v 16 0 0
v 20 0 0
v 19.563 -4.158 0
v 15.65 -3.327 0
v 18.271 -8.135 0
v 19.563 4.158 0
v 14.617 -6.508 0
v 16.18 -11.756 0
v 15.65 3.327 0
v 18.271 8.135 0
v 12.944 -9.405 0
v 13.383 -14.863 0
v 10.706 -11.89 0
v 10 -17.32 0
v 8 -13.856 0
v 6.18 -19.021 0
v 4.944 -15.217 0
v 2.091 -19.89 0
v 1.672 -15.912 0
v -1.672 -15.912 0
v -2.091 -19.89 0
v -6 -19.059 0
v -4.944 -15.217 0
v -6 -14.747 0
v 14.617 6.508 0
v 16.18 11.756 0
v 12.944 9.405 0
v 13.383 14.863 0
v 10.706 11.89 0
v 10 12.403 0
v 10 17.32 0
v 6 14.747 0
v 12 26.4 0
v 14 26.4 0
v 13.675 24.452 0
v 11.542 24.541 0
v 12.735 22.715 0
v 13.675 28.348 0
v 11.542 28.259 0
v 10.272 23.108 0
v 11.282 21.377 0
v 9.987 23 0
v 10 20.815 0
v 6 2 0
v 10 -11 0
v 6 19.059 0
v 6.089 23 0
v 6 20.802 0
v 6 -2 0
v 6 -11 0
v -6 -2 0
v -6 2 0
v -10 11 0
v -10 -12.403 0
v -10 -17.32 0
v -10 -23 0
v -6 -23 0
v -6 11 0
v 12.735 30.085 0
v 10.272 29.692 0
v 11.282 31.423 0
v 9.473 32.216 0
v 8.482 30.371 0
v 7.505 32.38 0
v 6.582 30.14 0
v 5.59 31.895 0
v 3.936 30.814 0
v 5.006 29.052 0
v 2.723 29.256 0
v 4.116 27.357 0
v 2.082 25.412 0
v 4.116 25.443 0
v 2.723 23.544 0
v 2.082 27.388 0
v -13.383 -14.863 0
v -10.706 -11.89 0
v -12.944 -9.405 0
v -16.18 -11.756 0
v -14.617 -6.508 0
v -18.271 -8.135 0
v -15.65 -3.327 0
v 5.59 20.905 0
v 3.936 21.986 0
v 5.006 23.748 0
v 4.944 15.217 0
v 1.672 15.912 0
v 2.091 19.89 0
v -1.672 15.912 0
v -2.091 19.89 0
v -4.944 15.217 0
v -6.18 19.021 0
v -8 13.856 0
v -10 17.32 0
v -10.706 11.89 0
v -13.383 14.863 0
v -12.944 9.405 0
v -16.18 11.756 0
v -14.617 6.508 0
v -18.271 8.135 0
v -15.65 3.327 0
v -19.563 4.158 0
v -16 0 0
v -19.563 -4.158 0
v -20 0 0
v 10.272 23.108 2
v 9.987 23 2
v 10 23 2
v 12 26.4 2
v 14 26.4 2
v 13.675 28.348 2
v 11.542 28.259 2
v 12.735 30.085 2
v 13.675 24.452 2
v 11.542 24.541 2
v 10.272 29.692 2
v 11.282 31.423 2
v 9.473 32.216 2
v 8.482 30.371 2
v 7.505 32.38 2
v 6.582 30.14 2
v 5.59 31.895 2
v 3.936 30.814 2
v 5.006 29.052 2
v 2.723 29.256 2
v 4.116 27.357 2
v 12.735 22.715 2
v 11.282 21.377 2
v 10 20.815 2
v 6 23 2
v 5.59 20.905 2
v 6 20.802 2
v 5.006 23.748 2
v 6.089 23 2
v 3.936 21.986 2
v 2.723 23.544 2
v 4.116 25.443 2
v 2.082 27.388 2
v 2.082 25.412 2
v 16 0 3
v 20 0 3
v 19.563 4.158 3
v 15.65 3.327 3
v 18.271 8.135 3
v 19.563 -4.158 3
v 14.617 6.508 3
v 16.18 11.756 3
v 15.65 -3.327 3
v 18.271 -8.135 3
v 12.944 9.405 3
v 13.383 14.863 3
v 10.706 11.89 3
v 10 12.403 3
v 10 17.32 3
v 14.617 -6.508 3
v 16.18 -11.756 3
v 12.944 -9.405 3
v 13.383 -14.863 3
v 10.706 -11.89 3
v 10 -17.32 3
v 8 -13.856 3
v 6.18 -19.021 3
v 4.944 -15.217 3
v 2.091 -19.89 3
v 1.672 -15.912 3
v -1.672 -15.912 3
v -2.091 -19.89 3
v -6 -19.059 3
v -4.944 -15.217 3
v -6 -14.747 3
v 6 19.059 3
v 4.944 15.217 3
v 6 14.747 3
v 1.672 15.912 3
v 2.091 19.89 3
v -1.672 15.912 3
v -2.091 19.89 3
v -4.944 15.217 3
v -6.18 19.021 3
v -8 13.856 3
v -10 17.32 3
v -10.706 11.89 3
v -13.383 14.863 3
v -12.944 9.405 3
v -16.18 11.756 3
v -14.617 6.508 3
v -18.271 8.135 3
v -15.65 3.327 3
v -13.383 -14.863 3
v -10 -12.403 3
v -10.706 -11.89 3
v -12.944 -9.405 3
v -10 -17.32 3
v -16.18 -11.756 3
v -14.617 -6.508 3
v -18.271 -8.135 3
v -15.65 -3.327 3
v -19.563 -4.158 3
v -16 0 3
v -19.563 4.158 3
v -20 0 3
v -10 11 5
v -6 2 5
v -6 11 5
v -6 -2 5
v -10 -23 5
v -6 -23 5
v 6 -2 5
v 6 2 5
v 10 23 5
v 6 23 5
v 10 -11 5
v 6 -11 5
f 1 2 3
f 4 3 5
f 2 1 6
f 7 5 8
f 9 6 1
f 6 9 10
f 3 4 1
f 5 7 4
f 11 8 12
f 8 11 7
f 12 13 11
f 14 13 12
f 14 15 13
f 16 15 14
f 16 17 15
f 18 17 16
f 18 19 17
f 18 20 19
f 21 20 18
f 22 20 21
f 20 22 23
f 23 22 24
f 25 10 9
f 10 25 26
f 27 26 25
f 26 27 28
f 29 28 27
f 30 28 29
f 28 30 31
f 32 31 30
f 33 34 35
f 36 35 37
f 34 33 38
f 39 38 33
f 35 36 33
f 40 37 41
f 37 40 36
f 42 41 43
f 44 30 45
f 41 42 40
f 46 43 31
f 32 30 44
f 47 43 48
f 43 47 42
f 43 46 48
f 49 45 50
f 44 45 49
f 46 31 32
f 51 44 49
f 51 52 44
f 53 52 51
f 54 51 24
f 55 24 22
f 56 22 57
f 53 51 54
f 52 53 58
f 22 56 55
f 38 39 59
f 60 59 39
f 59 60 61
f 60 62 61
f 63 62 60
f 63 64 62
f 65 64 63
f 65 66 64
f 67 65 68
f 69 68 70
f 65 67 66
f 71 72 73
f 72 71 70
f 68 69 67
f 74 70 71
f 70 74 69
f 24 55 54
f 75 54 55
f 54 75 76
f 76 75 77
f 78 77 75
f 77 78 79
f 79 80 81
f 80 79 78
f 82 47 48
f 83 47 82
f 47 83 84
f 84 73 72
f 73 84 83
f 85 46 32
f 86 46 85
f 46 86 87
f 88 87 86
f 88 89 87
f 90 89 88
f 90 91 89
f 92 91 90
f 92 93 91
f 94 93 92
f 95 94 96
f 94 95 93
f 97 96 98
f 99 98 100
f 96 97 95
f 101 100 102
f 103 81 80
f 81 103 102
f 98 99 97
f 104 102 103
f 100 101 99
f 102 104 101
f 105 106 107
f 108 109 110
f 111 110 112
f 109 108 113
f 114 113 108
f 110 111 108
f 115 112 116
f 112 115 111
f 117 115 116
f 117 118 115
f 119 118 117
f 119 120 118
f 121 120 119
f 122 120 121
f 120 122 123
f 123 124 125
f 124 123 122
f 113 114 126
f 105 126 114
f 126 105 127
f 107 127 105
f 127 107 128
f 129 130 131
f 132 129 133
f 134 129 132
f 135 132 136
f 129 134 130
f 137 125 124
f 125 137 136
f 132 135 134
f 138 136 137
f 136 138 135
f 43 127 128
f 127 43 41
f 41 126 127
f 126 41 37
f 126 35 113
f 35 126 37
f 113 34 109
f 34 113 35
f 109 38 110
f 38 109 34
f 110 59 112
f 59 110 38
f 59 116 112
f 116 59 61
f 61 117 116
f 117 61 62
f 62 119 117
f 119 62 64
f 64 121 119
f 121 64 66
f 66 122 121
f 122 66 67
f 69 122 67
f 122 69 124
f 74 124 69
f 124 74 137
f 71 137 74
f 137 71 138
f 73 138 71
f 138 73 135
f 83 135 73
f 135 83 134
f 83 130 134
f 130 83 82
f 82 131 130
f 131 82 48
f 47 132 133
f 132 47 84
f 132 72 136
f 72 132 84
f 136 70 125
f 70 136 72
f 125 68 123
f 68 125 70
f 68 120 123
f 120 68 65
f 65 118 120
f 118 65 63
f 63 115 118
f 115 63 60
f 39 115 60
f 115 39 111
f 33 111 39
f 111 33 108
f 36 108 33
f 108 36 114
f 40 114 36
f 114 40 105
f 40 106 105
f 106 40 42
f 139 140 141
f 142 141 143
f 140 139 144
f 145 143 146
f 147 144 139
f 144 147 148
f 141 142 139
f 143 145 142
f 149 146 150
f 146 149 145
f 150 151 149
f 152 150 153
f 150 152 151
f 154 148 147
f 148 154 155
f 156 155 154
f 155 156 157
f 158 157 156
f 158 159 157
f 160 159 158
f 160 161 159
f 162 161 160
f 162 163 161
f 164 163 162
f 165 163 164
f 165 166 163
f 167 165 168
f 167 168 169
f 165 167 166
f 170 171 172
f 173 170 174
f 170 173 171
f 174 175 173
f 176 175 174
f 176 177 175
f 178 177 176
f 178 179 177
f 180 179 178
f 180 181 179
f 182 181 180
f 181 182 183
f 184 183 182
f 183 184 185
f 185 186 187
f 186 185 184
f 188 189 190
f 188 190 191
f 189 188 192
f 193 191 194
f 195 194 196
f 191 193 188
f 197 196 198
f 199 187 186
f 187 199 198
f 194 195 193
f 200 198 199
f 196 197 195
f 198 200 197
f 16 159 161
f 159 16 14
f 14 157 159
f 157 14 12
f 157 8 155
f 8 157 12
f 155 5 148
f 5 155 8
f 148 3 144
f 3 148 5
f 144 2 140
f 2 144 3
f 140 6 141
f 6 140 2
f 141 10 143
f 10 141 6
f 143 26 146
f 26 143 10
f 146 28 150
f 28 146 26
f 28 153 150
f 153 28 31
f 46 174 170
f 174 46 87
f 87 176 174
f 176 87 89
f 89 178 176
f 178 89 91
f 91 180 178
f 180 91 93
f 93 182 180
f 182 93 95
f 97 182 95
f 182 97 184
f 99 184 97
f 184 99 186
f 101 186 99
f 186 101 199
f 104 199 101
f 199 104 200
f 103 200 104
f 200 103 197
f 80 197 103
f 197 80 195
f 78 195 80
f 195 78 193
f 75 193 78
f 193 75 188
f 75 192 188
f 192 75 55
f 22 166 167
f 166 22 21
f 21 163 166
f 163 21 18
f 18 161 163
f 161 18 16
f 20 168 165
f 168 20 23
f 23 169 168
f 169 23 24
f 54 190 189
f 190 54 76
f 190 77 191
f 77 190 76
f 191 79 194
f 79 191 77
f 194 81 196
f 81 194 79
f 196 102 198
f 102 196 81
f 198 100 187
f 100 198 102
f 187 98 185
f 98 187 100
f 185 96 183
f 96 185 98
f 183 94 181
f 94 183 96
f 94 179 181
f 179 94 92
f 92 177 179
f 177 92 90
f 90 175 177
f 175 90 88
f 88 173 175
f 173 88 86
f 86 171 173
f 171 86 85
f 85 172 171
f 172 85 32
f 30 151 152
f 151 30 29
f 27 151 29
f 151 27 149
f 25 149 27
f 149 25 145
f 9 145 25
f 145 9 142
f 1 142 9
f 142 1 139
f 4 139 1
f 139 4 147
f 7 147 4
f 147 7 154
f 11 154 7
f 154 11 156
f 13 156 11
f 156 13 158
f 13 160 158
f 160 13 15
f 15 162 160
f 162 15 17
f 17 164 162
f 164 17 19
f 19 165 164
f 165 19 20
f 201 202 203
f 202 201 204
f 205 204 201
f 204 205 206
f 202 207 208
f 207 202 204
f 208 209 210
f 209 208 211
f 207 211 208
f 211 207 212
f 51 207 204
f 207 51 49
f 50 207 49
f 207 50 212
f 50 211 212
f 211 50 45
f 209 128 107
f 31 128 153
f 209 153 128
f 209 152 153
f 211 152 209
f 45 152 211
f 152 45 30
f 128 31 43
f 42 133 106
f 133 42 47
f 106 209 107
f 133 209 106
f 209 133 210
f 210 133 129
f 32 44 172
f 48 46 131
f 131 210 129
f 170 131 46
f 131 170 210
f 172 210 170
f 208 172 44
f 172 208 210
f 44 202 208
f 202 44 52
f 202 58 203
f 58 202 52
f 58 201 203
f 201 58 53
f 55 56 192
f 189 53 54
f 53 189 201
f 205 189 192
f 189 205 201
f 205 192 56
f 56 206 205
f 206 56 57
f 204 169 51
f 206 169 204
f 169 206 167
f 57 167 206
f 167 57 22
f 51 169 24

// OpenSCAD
module aro(r, th) {
    difference(){
        circle(r);
        circle(r-(th));
    }
}
module rc(a) {
    rotate(a) children();
    children();
}
module c(color)color(color)children();
th = 4;
r = 20;
union(){
    c("gray")translate([r*0.4,r*1.32]) linear_extrude(2) aro(6, 2);
    c("salmon") linear_extrude(3) aro(r, th);
    c("red") linear_extrude(5) union(){
        square([r, th], true);
        rc([0, 0, 180])
            translate([r*0.4, 0])
                rotate([0, 0, 90]) translate([r* 0.3, 0]) square([r * 1.7, th], true);
    }
}
